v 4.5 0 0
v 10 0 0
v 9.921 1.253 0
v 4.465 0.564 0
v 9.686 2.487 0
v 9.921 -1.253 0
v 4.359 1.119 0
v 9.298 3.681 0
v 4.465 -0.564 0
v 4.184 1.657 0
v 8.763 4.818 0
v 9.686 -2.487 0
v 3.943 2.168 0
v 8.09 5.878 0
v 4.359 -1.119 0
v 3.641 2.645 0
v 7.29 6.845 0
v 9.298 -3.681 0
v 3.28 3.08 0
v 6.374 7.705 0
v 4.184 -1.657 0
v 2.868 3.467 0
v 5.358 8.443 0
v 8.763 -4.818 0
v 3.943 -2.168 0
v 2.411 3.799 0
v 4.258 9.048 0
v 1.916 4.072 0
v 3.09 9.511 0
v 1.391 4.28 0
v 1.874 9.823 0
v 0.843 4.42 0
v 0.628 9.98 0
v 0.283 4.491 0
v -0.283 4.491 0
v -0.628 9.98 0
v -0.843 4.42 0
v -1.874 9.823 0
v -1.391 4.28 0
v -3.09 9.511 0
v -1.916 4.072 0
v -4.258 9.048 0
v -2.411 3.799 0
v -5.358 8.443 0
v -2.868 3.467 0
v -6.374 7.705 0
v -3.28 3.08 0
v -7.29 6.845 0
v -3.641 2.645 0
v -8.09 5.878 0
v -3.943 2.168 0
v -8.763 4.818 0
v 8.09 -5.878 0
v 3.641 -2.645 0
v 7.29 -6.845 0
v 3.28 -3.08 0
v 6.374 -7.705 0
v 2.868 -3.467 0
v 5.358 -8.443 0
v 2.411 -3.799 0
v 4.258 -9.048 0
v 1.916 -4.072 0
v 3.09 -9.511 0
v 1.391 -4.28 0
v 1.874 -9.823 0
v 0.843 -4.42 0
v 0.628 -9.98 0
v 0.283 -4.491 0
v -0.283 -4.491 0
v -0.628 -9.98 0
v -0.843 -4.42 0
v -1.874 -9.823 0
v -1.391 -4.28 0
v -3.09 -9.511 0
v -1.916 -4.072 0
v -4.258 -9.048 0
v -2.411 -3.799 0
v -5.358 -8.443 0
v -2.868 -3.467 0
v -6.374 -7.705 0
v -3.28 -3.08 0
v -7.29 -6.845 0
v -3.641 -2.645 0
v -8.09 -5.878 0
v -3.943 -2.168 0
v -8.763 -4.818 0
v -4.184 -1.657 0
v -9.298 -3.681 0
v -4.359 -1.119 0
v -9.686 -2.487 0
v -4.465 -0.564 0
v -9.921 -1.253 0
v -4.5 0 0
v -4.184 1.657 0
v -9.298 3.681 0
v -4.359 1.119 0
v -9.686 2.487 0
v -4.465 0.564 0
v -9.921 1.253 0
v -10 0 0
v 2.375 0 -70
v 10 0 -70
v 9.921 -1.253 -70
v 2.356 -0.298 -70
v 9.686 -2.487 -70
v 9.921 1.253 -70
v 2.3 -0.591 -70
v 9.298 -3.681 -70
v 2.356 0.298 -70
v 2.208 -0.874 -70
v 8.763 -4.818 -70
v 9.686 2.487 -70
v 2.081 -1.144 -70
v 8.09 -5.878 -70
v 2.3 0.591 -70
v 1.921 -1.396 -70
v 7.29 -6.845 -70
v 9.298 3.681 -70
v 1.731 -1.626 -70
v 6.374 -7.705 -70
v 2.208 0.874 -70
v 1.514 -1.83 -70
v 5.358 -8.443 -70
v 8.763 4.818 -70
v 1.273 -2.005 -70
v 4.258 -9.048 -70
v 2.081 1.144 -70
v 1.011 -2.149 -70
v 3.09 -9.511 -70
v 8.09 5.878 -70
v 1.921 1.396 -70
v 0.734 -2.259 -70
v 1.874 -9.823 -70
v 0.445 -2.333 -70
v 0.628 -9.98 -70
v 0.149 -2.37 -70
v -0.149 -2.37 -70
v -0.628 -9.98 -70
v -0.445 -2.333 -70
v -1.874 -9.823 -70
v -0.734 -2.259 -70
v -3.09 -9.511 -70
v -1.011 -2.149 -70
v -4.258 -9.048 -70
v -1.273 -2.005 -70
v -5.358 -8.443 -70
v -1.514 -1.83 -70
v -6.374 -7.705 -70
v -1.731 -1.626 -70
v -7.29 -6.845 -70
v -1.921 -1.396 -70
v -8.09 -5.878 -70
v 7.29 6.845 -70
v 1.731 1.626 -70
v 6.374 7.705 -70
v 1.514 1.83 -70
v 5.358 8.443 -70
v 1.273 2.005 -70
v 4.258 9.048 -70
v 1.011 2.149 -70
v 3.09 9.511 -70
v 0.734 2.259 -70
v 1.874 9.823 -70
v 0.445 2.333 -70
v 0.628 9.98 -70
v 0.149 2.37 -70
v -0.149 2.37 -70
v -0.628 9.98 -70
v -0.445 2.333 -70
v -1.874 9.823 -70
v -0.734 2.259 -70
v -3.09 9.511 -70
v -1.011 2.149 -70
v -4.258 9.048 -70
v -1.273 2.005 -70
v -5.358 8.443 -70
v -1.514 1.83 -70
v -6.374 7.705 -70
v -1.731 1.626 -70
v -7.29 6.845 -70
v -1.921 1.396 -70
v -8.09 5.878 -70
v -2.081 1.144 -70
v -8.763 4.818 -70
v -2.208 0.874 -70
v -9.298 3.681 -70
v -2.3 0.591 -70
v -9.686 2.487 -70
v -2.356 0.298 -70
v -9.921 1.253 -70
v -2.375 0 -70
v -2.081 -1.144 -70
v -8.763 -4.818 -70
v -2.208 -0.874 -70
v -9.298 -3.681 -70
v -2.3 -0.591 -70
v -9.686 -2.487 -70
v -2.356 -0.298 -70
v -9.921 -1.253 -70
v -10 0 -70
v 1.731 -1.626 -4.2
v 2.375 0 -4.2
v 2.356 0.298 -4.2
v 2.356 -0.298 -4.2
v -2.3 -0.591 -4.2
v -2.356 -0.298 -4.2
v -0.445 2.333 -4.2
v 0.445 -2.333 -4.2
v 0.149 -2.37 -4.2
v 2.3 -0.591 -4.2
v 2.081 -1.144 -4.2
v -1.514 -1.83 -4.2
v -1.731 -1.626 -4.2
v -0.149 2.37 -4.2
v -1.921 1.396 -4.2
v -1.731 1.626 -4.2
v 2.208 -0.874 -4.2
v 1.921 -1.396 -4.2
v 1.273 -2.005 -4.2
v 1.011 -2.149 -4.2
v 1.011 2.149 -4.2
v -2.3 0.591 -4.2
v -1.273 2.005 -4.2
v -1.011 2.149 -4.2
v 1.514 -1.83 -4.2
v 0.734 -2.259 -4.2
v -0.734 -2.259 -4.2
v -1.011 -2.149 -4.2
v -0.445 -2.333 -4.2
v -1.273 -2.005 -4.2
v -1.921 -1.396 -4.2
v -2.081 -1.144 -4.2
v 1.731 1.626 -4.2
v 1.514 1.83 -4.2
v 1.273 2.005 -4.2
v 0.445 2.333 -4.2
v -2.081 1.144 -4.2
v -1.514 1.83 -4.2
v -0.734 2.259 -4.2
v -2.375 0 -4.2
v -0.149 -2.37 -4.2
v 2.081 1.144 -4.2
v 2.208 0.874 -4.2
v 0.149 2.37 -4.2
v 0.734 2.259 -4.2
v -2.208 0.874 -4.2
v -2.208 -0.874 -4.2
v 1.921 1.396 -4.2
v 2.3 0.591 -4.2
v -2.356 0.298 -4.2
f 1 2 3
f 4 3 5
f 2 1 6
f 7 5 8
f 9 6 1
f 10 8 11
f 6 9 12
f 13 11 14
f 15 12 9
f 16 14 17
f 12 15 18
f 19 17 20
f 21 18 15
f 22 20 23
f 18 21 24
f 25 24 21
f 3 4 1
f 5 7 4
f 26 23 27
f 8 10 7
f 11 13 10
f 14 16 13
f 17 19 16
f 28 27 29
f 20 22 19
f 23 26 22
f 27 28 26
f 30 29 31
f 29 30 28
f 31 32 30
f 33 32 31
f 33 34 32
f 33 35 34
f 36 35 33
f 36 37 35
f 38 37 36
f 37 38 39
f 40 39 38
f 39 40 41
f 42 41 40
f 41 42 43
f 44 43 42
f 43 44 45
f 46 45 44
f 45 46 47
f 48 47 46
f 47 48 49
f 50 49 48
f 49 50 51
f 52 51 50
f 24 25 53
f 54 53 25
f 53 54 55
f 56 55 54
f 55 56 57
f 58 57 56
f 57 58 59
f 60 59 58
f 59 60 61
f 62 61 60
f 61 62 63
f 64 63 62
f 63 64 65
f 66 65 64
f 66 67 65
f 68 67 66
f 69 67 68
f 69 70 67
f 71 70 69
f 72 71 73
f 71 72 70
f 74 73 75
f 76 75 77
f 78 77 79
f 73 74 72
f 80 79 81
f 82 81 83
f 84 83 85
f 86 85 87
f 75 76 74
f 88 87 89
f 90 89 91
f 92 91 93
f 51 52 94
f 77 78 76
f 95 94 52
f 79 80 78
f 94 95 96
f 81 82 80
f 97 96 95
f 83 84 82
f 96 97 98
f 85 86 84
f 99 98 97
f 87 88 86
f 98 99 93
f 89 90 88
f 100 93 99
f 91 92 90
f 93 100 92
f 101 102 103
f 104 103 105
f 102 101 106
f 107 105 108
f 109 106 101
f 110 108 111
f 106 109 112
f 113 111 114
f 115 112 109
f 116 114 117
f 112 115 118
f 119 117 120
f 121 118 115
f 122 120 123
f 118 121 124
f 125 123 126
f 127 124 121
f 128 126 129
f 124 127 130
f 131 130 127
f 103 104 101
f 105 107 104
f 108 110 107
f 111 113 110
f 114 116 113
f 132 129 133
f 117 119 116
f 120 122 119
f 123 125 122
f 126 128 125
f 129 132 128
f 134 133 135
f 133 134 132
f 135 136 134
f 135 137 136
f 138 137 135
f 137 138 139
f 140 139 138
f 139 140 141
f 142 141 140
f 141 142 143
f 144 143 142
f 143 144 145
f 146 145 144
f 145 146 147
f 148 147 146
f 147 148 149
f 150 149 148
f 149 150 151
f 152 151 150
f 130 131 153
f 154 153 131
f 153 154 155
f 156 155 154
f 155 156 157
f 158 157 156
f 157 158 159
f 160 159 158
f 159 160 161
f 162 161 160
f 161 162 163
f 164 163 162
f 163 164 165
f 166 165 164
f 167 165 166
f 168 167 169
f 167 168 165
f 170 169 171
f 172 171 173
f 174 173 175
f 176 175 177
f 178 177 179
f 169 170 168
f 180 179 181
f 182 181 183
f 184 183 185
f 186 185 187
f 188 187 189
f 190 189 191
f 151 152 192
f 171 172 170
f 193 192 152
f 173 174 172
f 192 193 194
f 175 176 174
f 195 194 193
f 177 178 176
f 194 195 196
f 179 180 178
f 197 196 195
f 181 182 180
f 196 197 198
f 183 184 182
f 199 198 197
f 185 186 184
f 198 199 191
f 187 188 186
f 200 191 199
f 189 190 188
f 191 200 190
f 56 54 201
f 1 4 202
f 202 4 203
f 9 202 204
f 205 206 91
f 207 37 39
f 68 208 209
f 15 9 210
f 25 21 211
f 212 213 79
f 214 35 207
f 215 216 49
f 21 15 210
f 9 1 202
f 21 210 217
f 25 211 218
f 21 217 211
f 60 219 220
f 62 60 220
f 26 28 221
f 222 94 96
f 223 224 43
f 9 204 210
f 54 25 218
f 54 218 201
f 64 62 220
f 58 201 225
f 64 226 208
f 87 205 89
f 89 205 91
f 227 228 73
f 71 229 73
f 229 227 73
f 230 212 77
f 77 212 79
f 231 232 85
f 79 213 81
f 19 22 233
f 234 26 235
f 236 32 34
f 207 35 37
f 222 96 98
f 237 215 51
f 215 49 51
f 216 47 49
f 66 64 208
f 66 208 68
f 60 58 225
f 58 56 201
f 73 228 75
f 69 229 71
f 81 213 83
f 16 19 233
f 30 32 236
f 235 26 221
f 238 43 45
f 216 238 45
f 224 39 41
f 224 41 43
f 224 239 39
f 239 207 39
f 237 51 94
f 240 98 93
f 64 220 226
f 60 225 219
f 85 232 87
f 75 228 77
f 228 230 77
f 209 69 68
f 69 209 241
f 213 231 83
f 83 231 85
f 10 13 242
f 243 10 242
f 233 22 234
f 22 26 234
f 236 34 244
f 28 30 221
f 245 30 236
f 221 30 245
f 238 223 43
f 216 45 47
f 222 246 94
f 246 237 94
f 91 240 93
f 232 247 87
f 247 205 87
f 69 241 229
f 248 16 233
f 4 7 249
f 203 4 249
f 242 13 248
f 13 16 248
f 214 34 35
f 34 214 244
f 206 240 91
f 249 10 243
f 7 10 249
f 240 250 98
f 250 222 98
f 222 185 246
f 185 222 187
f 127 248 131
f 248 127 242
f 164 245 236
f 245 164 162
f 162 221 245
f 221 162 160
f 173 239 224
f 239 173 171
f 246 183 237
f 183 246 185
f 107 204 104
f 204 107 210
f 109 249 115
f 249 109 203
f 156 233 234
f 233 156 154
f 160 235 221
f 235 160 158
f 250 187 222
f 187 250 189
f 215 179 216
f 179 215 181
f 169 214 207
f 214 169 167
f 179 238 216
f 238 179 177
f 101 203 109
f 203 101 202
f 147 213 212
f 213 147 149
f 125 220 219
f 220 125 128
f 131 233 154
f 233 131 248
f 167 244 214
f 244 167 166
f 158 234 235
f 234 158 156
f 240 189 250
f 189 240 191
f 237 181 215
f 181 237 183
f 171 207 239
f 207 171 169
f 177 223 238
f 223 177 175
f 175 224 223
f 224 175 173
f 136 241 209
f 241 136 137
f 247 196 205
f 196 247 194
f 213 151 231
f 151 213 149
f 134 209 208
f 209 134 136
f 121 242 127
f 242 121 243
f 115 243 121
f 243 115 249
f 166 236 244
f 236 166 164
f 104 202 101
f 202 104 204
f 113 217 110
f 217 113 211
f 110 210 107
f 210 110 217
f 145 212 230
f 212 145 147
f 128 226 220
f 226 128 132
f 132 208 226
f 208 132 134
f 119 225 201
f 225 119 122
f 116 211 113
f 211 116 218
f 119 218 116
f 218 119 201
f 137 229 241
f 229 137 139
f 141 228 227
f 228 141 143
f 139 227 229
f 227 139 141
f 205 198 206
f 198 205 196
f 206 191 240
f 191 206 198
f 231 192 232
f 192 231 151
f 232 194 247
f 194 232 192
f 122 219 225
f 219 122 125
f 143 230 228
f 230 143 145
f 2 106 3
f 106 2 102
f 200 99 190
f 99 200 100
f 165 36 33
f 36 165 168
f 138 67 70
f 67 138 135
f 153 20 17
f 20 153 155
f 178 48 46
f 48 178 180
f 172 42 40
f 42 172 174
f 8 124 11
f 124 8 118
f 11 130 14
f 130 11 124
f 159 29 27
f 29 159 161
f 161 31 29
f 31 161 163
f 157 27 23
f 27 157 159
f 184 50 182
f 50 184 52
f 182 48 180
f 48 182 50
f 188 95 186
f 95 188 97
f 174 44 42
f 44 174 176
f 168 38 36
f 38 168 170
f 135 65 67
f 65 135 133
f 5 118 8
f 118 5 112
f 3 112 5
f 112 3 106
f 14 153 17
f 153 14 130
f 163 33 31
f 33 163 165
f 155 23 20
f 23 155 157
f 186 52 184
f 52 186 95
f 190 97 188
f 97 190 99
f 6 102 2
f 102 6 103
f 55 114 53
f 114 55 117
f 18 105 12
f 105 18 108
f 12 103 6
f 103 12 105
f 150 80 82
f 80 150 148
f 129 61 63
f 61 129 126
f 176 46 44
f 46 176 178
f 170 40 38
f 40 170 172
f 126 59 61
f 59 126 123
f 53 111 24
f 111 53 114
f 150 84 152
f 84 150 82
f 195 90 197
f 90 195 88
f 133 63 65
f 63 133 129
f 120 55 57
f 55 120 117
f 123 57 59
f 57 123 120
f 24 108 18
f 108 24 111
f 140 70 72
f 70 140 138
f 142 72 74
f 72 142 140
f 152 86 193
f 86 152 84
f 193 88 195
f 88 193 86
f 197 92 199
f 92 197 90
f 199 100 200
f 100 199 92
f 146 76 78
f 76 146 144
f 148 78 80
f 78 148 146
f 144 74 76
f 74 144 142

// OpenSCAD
$fn = 50;


difference() {
	union() {
		translate(v = [0, 0, -70.0000000000]) {
			cylinder(h = 70, r = 10.0000000000);
		}
		cylinder(h = 0, r = 16.0000000000);
	}
	union() {
		translate(v = [0, 0, 0]) {
			rotate(a = [0, 0, 0]) {
				difference() {
					union() {
						#translate(v = [0, 0, -70.0000000000]) {
							cylinder(h = 70, r = 2.2500000000);
						}
						#translate(v = [0, 0, -4.2000000000]) {
							cylinder(h = 4.2000000000, r1 = 2.3750000000, r2 = 4.5000000000);
						}
						#translate(v = [0, 0, -70.0000000000]) {
							cylinder(h = 70, r = 2.3750000000);
						}
						#translate(v = [0, 0, -70.0000000000]) {
							cylinder(h = 70, r = 2.2500000000);
						}
					}
					union();
				}
			}
		}
	}
}
